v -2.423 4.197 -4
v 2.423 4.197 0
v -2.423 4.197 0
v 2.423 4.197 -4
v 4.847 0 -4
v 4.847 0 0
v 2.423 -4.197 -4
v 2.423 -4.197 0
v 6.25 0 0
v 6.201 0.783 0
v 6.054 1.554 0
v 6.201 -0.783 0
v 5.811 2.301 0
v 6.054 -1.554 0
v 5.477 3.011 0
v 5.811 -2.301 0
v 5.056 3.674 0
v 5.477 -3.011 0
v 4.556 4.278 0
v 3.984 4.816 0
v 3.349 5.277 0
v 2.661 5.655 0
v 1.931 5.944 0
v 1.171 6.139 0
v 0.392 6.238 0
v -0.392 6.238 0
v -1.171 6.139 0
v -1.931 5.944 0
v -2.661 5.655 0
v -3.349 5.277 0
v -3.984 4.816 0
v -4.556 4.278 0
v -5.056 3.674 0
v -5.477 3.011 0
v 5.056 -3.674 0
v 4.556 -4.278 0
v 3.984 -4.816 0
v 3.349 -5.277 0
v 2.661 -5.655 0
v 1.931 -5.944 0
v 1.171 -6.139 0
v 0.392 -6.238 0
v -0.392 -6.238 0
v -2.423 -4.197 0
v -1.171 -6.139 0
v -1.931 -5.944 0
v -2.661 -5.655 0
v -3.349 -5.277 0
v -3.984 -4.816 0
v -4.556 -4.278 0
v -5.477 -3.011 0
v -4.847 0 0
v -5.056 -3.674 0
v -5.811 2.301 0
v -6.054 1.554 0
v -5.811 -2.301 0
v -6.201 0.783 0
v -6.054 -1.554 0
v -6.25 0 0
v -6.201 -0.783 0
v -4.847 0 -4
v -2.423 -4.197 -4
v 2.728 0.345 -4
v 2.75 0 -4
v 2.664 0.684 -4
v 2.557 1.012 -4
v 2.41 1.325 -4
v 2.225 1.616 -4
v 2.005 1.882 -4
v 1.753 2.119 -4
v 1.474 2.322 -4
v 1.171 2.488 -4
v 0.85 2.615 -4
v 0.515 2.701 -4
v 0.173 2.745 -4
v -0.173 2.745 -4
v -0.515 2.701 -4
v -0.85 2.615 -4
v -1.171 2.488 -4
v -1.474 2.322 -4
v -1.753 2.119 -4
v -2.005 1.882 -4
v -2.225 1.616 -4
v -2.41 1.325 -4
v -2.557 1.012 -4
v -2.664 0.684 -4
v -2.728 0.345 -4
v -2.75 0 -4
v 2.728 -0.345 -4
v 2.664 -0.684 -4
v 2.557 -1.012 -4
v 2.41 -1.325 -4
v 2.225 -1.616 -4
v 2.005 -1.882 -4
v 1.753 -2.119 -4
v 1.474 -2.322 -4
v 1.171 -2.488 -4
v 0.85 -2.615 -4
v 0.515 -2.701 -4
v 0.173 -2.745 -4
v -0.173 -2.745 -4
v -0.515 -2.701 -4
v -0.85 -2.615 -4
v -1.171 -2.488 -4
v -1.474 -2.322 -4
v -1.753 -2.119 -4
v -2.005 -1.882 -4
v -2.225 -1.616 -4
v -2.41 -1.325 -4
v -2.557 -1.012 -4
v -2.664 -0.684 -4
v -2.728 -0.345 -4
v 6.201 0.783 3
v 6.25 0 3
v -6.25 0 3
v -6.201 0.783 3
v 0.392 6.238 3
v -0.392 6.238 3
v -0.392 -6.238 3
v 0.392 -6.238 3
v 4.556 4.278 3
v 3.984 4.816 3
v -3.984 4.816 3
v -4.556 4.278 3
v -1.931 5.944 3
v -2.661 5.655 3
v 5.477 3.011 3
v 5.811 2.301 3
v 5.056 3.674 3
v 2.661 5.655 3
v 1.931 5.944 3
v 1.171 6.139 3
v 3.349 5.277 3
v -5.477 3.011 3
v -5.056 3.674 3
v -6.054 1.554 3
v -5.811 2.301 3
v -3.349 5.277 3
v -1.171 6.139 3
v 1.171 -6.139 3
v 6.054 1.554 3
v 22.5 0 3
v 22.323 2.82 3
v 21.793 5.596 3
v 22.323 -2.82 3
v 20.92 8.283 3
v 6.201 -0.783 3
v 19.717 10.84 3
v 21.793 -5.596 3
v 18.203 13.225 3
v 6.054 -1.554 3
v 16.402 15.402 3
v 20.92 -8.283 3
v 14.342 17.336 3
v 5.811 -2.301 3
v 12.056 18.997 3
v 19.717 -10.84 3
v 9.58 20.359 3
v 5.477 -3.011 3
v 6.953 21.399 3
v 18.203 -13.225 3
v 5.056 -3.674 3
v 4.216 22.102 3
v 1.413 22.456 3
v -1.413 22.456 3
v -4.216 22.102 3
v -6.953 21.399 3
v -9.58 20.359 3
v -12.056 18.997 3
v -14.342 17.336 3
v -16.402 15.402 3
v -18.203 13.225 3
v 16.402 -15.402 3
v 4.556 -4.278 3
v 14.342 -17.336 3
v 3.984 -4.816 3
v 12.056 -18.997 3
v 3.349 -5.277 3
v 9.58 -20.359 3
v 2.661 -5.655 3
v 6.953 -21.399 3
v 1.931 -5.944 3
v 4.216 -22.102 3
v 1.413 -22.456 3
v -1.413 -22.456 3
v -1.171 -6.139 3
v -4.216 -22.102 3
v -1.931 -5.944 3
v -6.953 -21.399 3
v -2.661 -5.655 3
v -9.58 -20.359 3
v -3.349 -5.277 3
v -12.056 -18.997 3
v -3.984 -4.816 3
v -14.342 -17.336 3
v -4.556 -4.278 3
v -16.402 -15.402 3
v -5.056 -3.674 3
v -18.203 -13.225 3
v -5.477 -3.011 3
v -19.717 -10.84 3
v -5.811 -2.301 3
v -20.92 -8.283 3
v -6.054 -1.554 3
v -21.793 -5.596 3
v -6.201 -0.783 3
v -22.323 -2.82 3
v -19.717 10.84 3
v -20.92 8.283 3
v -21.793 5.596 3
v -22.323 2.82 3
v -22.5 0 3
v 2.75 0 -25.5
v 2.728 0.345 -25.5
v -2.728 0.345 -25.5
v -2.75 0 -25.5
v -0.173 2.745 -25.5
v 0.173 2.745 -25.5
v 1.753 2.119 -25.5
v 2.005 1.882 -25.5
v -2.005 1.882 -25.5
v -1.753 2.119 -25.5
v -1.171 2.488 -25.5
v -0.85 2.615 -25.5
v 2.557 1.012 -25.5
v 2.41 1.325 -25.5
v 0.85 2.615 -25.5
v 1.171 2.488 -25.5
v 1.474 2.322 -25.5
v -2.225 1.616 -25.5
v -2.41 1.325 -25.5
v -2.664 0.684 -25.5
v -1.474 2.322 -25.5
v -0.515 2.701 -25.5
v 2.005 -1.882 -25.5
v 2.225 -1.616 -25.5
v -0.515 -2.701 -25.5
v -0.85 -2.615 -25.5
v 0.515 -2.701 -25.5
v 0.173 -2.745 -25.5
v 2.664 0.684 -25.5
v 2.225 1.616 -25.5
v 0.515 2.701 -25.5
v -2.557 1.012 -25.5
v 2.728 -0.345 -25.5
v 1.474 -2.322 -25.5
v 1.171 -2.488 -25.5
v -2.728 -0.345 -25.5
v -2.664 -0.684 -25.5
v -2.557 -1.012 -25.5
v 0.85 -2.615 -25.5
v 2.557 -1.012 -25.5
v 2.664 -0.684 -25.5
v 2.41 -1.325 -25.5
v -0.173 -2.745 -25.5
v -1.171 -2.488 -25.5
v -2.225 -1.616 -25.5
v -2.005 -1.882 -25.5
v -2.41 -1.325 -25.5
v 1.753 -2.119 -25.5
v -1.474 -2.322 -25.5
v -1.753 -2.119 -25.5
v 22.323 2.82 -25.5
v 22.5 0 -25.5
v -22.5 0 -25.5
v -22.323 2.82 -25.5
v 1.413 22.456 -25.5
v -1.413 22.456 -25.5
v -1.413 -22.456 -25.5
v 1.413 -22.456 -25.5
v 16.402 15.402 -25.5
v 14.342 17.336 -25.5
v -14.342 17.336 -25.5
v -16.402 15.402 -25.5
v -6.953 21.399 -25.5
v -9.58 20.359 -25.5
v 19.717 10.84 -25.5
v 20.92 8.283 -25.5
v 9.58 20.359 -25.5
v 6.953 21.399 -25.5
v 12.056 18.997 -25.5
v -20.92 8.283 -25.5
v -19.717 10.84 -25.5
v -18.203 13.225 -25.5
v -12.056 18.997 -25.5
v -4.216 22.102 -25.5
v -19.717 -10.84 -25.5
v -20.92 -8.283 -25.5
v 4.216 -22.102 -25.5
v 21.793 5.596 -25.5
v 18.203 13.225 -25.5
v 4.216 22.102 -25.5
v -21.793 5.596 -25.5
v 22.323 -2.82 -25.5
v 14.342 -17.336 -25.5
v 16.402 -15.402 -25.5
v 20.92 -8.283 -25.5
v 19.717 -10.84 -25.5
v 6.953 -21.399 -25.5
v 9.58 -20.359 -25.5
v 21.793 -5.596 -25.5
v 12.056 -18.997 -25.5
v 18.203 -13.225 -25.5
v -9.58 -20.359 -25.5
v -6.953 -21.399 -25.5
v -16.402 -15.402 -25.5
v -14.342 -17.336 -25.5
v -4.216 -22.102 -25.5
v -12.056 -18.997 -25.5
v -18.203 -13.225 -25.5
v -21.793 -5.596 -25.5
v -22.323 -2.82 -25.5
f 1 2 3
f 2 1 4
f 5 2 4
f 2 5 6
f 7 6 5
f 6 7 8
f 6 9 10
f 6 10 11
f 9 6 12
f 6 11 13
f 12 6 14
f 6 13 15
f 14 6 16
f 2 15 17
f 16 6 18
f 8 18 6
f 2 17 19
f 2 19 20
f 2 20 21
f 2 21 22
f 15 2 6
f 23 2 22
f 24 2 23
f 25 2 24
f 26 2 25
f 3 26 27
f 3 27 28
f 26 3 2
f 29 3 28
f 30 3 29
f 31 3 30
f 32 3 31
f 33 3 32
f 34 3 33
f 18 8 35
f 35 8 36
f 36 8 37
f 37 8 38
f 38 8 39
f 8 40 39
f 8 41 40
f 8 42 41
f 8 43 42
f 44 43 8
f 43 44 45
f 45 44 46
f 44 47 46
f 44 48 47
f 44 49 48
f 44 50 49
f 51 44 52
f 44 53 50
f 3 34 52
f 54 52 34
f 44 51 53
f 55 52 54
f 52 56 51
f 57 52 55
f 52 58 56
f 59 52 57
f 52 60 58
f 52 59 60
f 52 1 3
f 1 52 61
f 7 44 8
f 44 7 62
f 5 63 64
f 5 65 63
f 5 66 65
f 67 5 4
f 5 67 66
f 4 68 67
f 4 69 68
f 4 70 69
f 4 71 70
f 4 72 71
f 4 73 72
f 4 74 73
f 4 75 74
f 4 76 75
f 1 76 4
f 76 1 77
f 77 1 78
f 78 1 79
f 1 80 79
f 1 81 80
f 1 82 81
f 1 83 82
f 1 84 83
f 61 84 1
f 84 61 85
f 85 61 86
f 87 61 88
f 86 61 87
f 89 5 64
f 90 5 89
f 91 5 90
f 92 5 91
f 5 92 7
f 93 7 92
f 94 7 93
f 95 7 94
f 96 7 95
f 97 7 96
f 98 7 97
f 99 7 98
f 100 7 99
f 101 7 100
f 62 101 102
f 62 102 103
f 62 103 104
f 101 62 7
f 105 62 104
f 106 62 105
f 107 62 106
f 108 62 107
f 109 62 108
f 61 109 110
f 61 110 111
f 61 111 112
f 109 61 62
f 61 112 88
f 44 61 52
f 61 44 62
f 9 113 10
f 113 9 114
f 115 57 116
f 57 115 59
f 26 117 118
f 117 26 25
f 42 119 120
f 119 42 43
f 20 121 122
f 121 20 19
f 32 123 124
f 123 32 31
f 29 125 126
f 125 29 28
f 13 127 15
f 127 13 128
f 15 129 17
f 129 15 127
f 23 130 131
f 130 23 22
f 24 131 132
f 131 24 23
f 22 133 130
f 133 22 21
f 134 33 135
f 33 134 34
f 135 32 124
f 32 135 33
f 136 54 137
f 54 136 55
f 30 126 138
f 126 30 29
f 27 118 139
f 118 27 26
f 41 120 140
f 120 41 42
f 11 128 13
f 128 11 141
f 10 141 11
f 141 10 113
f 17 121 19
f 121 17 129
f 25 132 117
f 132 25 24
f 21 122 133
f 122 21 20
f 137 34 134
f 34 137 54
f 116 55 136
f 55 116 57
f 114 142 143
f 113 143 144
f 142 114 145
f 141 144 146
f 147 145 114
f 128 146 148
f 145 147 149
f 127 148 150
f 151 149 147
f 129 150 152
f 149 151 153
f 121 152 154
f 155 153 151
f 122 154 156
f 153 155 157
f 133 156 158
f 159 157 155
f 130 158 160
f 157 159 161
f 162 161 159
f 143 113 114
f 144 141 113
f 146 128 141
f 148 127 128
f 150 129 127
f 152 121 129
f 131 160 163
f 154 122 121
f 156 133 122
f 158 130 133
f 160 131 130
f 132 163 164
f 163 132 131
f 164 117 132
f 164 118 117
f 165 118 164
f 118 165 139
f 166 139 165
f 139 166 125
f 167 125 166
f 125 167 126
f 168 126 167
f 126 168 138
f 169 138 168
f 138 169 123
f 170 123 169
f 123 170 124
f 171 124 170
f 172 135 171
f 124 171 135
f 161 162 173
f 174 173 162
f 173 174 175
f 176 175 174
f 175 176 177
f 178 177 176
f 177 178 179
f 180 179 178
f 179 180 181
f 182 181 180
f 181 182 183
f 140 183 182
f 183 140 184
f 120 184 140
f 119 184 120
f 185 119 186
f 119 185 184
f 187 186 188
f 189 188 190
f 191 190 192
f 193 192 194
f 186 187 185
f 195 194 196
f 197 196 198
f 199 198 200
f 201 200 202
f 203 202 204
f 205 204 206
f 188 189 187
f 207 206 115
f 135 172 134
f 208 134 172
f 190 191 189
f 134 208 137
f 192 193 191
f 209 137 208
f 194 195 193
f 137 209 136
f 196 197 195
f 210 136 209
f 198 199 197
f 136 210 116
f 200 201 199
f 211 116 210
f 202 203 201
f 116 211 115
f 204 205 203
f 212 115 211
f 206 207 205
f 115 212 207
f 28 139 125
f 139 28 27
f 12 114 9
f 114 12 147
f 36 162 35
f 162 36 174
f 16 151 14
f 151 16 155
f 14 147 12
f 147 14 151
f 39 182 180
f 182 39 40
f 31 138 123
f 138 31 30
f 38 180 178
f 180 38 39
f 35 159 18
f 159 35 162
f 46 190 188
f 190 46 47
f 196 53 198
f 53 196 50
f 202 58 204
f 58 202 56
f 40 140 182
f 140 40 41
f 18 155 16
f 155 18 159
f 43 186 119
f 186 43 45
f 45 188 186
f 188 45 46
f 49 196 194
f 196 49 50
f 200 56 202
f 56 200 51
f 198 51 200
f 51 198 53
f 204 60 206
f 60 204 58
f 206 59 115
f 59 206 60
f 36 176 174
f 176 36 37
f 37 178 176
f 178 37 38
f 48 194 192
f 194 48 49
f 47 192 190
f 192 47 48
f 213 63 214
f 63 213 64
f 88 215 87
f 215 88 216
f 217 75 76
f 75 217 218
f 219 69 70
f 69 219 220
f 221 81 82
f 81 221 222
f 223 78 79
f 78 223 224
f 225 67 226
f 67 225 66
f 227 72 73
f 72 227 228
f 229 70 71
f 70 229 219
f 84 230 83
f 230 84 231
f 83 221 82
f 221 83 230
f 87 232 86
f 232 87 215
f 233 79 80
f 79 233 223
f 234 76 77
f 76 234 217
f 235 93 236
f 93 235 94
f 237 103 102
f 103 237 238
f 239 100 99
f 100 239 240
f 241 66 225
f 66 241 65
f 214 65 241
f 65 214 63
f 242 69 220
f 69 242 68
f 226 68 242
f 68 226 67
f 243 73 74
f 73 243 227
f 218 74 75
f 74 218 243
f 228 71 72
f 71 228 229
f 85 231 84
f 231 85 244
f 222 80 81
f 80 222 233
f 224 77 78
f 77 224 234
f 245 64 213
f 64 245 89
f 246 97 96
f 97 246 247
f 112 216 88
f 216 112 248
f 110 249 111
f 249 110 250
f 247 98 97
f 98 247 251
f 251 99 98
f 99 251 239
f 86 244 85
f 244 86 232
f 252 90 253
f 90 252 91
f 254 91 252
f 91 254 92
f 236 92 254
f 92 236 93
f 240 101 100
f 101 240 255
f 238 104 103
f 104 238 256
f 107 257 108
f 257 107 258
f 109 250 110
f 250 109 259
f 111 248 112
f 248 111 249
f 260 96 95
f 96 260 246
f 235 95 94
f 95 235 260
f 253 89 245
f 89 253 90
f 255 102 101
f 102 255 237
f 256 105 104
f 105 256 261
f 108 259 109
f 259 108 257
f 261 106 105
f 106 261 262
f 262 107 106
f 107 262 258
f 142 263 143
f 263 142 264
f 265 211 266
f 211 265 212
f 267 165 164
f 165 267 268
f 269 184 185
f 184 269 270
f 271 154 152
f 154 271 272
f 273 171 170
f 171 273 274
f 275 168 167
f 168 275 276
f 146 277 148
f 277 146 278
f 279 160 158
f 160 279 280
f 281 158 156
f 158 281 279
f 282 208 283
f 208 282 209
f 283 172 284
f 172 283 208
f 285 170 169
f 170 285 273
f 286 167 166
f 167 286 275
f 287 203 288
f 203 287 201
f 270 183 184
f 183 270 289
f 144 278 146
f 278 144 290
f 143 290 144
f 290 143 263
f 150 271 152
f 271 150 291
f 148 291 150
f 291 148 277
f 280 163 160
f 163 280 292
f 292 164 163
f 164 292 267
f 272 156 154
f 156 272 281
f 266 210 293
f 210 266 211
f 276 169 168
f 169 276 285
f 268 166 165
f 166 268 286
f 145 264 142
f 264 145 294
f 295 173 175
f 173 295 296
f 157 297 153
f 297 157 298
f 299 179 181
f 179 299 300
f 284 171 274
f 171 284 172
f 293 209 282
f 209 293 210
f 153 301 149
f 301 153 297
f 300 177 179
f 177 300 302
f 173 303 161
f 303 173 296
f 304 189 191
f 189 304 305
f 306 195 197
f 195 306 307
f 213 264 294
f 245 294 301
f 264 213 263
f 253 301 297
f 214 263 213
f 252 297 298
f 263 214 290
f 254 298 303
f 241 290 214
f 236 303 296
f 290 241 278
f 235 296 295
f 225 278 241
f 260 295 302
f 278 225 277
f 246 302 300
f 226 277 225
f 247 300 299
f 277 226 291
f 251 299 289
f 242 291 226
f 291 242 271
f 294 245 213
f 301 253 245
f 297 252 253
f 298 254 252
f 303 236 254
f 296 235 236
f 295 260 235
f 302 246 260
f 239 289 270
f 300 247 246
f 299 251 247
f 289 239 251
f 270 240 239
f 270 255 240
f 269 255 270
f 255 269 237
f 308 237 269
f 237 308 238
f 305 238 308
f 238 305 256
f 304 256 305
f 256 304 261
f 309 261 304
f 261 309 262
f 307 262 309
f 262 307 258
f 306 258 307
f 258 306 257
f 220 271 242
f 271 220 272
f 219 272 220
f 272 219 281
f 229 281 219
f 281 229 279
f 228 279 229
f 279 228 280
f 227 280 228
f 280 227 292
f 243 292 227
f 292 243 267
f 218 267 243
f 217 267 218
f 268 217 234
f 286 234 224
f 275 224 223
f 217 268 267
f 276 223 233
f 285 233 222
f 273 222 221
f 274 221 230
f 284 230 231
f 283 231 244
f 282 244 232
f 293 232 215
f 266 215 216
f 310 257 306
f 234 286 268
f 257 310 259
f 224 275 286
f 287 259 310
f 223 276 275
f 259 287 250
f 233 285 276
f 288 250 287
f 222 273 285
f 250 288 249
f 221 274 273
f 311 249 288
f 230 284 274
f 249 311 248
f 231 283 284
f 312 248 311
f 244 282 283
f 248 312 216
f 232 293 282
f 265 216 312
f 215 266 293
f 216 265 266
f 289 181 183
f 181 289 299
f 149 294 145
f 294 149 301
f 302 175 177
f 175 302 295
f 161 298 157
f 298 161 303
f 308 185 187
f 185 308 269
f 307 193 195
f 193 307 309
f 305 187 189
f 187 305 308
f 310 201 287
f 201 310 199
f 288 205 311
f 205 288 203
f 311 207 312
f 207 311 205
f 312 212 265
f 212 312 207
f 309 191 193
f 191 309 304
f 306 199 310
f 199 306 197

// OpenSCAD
$fn = 50;

difference() {
	union() {
		translate(v = [0, 0, -25.5]) {
			cylinder(h = 28.5, r = 22.5);
		}
	}
	union() {
		translate(v = [0, 0, 0]) {
			rotate(a = [0, 0, 0]) {
				difference() {
					union() {
						translate(v = [0, 0, -4]) {
							linear_extrude(height = 4) {
								polygon(points = [[4.8468, 0.0], [2.4234000000000004, 4.197451927062417], [-2.423399999999999, 4.197451927062417], [-4.8468, 5.935618106107392e-16], [-2.423400000000002, -4.197451927062416], [2.423399999999997, -4.197451927062419]]);
							}
						}
					}
					union();
				}
			}
		}
		#cylinder(h = 3, r = 6.25);
		#translate(v = [0, 0, -100.0]) {
			cylinder(h = 200, r = 2.75);
		}
	}
}
